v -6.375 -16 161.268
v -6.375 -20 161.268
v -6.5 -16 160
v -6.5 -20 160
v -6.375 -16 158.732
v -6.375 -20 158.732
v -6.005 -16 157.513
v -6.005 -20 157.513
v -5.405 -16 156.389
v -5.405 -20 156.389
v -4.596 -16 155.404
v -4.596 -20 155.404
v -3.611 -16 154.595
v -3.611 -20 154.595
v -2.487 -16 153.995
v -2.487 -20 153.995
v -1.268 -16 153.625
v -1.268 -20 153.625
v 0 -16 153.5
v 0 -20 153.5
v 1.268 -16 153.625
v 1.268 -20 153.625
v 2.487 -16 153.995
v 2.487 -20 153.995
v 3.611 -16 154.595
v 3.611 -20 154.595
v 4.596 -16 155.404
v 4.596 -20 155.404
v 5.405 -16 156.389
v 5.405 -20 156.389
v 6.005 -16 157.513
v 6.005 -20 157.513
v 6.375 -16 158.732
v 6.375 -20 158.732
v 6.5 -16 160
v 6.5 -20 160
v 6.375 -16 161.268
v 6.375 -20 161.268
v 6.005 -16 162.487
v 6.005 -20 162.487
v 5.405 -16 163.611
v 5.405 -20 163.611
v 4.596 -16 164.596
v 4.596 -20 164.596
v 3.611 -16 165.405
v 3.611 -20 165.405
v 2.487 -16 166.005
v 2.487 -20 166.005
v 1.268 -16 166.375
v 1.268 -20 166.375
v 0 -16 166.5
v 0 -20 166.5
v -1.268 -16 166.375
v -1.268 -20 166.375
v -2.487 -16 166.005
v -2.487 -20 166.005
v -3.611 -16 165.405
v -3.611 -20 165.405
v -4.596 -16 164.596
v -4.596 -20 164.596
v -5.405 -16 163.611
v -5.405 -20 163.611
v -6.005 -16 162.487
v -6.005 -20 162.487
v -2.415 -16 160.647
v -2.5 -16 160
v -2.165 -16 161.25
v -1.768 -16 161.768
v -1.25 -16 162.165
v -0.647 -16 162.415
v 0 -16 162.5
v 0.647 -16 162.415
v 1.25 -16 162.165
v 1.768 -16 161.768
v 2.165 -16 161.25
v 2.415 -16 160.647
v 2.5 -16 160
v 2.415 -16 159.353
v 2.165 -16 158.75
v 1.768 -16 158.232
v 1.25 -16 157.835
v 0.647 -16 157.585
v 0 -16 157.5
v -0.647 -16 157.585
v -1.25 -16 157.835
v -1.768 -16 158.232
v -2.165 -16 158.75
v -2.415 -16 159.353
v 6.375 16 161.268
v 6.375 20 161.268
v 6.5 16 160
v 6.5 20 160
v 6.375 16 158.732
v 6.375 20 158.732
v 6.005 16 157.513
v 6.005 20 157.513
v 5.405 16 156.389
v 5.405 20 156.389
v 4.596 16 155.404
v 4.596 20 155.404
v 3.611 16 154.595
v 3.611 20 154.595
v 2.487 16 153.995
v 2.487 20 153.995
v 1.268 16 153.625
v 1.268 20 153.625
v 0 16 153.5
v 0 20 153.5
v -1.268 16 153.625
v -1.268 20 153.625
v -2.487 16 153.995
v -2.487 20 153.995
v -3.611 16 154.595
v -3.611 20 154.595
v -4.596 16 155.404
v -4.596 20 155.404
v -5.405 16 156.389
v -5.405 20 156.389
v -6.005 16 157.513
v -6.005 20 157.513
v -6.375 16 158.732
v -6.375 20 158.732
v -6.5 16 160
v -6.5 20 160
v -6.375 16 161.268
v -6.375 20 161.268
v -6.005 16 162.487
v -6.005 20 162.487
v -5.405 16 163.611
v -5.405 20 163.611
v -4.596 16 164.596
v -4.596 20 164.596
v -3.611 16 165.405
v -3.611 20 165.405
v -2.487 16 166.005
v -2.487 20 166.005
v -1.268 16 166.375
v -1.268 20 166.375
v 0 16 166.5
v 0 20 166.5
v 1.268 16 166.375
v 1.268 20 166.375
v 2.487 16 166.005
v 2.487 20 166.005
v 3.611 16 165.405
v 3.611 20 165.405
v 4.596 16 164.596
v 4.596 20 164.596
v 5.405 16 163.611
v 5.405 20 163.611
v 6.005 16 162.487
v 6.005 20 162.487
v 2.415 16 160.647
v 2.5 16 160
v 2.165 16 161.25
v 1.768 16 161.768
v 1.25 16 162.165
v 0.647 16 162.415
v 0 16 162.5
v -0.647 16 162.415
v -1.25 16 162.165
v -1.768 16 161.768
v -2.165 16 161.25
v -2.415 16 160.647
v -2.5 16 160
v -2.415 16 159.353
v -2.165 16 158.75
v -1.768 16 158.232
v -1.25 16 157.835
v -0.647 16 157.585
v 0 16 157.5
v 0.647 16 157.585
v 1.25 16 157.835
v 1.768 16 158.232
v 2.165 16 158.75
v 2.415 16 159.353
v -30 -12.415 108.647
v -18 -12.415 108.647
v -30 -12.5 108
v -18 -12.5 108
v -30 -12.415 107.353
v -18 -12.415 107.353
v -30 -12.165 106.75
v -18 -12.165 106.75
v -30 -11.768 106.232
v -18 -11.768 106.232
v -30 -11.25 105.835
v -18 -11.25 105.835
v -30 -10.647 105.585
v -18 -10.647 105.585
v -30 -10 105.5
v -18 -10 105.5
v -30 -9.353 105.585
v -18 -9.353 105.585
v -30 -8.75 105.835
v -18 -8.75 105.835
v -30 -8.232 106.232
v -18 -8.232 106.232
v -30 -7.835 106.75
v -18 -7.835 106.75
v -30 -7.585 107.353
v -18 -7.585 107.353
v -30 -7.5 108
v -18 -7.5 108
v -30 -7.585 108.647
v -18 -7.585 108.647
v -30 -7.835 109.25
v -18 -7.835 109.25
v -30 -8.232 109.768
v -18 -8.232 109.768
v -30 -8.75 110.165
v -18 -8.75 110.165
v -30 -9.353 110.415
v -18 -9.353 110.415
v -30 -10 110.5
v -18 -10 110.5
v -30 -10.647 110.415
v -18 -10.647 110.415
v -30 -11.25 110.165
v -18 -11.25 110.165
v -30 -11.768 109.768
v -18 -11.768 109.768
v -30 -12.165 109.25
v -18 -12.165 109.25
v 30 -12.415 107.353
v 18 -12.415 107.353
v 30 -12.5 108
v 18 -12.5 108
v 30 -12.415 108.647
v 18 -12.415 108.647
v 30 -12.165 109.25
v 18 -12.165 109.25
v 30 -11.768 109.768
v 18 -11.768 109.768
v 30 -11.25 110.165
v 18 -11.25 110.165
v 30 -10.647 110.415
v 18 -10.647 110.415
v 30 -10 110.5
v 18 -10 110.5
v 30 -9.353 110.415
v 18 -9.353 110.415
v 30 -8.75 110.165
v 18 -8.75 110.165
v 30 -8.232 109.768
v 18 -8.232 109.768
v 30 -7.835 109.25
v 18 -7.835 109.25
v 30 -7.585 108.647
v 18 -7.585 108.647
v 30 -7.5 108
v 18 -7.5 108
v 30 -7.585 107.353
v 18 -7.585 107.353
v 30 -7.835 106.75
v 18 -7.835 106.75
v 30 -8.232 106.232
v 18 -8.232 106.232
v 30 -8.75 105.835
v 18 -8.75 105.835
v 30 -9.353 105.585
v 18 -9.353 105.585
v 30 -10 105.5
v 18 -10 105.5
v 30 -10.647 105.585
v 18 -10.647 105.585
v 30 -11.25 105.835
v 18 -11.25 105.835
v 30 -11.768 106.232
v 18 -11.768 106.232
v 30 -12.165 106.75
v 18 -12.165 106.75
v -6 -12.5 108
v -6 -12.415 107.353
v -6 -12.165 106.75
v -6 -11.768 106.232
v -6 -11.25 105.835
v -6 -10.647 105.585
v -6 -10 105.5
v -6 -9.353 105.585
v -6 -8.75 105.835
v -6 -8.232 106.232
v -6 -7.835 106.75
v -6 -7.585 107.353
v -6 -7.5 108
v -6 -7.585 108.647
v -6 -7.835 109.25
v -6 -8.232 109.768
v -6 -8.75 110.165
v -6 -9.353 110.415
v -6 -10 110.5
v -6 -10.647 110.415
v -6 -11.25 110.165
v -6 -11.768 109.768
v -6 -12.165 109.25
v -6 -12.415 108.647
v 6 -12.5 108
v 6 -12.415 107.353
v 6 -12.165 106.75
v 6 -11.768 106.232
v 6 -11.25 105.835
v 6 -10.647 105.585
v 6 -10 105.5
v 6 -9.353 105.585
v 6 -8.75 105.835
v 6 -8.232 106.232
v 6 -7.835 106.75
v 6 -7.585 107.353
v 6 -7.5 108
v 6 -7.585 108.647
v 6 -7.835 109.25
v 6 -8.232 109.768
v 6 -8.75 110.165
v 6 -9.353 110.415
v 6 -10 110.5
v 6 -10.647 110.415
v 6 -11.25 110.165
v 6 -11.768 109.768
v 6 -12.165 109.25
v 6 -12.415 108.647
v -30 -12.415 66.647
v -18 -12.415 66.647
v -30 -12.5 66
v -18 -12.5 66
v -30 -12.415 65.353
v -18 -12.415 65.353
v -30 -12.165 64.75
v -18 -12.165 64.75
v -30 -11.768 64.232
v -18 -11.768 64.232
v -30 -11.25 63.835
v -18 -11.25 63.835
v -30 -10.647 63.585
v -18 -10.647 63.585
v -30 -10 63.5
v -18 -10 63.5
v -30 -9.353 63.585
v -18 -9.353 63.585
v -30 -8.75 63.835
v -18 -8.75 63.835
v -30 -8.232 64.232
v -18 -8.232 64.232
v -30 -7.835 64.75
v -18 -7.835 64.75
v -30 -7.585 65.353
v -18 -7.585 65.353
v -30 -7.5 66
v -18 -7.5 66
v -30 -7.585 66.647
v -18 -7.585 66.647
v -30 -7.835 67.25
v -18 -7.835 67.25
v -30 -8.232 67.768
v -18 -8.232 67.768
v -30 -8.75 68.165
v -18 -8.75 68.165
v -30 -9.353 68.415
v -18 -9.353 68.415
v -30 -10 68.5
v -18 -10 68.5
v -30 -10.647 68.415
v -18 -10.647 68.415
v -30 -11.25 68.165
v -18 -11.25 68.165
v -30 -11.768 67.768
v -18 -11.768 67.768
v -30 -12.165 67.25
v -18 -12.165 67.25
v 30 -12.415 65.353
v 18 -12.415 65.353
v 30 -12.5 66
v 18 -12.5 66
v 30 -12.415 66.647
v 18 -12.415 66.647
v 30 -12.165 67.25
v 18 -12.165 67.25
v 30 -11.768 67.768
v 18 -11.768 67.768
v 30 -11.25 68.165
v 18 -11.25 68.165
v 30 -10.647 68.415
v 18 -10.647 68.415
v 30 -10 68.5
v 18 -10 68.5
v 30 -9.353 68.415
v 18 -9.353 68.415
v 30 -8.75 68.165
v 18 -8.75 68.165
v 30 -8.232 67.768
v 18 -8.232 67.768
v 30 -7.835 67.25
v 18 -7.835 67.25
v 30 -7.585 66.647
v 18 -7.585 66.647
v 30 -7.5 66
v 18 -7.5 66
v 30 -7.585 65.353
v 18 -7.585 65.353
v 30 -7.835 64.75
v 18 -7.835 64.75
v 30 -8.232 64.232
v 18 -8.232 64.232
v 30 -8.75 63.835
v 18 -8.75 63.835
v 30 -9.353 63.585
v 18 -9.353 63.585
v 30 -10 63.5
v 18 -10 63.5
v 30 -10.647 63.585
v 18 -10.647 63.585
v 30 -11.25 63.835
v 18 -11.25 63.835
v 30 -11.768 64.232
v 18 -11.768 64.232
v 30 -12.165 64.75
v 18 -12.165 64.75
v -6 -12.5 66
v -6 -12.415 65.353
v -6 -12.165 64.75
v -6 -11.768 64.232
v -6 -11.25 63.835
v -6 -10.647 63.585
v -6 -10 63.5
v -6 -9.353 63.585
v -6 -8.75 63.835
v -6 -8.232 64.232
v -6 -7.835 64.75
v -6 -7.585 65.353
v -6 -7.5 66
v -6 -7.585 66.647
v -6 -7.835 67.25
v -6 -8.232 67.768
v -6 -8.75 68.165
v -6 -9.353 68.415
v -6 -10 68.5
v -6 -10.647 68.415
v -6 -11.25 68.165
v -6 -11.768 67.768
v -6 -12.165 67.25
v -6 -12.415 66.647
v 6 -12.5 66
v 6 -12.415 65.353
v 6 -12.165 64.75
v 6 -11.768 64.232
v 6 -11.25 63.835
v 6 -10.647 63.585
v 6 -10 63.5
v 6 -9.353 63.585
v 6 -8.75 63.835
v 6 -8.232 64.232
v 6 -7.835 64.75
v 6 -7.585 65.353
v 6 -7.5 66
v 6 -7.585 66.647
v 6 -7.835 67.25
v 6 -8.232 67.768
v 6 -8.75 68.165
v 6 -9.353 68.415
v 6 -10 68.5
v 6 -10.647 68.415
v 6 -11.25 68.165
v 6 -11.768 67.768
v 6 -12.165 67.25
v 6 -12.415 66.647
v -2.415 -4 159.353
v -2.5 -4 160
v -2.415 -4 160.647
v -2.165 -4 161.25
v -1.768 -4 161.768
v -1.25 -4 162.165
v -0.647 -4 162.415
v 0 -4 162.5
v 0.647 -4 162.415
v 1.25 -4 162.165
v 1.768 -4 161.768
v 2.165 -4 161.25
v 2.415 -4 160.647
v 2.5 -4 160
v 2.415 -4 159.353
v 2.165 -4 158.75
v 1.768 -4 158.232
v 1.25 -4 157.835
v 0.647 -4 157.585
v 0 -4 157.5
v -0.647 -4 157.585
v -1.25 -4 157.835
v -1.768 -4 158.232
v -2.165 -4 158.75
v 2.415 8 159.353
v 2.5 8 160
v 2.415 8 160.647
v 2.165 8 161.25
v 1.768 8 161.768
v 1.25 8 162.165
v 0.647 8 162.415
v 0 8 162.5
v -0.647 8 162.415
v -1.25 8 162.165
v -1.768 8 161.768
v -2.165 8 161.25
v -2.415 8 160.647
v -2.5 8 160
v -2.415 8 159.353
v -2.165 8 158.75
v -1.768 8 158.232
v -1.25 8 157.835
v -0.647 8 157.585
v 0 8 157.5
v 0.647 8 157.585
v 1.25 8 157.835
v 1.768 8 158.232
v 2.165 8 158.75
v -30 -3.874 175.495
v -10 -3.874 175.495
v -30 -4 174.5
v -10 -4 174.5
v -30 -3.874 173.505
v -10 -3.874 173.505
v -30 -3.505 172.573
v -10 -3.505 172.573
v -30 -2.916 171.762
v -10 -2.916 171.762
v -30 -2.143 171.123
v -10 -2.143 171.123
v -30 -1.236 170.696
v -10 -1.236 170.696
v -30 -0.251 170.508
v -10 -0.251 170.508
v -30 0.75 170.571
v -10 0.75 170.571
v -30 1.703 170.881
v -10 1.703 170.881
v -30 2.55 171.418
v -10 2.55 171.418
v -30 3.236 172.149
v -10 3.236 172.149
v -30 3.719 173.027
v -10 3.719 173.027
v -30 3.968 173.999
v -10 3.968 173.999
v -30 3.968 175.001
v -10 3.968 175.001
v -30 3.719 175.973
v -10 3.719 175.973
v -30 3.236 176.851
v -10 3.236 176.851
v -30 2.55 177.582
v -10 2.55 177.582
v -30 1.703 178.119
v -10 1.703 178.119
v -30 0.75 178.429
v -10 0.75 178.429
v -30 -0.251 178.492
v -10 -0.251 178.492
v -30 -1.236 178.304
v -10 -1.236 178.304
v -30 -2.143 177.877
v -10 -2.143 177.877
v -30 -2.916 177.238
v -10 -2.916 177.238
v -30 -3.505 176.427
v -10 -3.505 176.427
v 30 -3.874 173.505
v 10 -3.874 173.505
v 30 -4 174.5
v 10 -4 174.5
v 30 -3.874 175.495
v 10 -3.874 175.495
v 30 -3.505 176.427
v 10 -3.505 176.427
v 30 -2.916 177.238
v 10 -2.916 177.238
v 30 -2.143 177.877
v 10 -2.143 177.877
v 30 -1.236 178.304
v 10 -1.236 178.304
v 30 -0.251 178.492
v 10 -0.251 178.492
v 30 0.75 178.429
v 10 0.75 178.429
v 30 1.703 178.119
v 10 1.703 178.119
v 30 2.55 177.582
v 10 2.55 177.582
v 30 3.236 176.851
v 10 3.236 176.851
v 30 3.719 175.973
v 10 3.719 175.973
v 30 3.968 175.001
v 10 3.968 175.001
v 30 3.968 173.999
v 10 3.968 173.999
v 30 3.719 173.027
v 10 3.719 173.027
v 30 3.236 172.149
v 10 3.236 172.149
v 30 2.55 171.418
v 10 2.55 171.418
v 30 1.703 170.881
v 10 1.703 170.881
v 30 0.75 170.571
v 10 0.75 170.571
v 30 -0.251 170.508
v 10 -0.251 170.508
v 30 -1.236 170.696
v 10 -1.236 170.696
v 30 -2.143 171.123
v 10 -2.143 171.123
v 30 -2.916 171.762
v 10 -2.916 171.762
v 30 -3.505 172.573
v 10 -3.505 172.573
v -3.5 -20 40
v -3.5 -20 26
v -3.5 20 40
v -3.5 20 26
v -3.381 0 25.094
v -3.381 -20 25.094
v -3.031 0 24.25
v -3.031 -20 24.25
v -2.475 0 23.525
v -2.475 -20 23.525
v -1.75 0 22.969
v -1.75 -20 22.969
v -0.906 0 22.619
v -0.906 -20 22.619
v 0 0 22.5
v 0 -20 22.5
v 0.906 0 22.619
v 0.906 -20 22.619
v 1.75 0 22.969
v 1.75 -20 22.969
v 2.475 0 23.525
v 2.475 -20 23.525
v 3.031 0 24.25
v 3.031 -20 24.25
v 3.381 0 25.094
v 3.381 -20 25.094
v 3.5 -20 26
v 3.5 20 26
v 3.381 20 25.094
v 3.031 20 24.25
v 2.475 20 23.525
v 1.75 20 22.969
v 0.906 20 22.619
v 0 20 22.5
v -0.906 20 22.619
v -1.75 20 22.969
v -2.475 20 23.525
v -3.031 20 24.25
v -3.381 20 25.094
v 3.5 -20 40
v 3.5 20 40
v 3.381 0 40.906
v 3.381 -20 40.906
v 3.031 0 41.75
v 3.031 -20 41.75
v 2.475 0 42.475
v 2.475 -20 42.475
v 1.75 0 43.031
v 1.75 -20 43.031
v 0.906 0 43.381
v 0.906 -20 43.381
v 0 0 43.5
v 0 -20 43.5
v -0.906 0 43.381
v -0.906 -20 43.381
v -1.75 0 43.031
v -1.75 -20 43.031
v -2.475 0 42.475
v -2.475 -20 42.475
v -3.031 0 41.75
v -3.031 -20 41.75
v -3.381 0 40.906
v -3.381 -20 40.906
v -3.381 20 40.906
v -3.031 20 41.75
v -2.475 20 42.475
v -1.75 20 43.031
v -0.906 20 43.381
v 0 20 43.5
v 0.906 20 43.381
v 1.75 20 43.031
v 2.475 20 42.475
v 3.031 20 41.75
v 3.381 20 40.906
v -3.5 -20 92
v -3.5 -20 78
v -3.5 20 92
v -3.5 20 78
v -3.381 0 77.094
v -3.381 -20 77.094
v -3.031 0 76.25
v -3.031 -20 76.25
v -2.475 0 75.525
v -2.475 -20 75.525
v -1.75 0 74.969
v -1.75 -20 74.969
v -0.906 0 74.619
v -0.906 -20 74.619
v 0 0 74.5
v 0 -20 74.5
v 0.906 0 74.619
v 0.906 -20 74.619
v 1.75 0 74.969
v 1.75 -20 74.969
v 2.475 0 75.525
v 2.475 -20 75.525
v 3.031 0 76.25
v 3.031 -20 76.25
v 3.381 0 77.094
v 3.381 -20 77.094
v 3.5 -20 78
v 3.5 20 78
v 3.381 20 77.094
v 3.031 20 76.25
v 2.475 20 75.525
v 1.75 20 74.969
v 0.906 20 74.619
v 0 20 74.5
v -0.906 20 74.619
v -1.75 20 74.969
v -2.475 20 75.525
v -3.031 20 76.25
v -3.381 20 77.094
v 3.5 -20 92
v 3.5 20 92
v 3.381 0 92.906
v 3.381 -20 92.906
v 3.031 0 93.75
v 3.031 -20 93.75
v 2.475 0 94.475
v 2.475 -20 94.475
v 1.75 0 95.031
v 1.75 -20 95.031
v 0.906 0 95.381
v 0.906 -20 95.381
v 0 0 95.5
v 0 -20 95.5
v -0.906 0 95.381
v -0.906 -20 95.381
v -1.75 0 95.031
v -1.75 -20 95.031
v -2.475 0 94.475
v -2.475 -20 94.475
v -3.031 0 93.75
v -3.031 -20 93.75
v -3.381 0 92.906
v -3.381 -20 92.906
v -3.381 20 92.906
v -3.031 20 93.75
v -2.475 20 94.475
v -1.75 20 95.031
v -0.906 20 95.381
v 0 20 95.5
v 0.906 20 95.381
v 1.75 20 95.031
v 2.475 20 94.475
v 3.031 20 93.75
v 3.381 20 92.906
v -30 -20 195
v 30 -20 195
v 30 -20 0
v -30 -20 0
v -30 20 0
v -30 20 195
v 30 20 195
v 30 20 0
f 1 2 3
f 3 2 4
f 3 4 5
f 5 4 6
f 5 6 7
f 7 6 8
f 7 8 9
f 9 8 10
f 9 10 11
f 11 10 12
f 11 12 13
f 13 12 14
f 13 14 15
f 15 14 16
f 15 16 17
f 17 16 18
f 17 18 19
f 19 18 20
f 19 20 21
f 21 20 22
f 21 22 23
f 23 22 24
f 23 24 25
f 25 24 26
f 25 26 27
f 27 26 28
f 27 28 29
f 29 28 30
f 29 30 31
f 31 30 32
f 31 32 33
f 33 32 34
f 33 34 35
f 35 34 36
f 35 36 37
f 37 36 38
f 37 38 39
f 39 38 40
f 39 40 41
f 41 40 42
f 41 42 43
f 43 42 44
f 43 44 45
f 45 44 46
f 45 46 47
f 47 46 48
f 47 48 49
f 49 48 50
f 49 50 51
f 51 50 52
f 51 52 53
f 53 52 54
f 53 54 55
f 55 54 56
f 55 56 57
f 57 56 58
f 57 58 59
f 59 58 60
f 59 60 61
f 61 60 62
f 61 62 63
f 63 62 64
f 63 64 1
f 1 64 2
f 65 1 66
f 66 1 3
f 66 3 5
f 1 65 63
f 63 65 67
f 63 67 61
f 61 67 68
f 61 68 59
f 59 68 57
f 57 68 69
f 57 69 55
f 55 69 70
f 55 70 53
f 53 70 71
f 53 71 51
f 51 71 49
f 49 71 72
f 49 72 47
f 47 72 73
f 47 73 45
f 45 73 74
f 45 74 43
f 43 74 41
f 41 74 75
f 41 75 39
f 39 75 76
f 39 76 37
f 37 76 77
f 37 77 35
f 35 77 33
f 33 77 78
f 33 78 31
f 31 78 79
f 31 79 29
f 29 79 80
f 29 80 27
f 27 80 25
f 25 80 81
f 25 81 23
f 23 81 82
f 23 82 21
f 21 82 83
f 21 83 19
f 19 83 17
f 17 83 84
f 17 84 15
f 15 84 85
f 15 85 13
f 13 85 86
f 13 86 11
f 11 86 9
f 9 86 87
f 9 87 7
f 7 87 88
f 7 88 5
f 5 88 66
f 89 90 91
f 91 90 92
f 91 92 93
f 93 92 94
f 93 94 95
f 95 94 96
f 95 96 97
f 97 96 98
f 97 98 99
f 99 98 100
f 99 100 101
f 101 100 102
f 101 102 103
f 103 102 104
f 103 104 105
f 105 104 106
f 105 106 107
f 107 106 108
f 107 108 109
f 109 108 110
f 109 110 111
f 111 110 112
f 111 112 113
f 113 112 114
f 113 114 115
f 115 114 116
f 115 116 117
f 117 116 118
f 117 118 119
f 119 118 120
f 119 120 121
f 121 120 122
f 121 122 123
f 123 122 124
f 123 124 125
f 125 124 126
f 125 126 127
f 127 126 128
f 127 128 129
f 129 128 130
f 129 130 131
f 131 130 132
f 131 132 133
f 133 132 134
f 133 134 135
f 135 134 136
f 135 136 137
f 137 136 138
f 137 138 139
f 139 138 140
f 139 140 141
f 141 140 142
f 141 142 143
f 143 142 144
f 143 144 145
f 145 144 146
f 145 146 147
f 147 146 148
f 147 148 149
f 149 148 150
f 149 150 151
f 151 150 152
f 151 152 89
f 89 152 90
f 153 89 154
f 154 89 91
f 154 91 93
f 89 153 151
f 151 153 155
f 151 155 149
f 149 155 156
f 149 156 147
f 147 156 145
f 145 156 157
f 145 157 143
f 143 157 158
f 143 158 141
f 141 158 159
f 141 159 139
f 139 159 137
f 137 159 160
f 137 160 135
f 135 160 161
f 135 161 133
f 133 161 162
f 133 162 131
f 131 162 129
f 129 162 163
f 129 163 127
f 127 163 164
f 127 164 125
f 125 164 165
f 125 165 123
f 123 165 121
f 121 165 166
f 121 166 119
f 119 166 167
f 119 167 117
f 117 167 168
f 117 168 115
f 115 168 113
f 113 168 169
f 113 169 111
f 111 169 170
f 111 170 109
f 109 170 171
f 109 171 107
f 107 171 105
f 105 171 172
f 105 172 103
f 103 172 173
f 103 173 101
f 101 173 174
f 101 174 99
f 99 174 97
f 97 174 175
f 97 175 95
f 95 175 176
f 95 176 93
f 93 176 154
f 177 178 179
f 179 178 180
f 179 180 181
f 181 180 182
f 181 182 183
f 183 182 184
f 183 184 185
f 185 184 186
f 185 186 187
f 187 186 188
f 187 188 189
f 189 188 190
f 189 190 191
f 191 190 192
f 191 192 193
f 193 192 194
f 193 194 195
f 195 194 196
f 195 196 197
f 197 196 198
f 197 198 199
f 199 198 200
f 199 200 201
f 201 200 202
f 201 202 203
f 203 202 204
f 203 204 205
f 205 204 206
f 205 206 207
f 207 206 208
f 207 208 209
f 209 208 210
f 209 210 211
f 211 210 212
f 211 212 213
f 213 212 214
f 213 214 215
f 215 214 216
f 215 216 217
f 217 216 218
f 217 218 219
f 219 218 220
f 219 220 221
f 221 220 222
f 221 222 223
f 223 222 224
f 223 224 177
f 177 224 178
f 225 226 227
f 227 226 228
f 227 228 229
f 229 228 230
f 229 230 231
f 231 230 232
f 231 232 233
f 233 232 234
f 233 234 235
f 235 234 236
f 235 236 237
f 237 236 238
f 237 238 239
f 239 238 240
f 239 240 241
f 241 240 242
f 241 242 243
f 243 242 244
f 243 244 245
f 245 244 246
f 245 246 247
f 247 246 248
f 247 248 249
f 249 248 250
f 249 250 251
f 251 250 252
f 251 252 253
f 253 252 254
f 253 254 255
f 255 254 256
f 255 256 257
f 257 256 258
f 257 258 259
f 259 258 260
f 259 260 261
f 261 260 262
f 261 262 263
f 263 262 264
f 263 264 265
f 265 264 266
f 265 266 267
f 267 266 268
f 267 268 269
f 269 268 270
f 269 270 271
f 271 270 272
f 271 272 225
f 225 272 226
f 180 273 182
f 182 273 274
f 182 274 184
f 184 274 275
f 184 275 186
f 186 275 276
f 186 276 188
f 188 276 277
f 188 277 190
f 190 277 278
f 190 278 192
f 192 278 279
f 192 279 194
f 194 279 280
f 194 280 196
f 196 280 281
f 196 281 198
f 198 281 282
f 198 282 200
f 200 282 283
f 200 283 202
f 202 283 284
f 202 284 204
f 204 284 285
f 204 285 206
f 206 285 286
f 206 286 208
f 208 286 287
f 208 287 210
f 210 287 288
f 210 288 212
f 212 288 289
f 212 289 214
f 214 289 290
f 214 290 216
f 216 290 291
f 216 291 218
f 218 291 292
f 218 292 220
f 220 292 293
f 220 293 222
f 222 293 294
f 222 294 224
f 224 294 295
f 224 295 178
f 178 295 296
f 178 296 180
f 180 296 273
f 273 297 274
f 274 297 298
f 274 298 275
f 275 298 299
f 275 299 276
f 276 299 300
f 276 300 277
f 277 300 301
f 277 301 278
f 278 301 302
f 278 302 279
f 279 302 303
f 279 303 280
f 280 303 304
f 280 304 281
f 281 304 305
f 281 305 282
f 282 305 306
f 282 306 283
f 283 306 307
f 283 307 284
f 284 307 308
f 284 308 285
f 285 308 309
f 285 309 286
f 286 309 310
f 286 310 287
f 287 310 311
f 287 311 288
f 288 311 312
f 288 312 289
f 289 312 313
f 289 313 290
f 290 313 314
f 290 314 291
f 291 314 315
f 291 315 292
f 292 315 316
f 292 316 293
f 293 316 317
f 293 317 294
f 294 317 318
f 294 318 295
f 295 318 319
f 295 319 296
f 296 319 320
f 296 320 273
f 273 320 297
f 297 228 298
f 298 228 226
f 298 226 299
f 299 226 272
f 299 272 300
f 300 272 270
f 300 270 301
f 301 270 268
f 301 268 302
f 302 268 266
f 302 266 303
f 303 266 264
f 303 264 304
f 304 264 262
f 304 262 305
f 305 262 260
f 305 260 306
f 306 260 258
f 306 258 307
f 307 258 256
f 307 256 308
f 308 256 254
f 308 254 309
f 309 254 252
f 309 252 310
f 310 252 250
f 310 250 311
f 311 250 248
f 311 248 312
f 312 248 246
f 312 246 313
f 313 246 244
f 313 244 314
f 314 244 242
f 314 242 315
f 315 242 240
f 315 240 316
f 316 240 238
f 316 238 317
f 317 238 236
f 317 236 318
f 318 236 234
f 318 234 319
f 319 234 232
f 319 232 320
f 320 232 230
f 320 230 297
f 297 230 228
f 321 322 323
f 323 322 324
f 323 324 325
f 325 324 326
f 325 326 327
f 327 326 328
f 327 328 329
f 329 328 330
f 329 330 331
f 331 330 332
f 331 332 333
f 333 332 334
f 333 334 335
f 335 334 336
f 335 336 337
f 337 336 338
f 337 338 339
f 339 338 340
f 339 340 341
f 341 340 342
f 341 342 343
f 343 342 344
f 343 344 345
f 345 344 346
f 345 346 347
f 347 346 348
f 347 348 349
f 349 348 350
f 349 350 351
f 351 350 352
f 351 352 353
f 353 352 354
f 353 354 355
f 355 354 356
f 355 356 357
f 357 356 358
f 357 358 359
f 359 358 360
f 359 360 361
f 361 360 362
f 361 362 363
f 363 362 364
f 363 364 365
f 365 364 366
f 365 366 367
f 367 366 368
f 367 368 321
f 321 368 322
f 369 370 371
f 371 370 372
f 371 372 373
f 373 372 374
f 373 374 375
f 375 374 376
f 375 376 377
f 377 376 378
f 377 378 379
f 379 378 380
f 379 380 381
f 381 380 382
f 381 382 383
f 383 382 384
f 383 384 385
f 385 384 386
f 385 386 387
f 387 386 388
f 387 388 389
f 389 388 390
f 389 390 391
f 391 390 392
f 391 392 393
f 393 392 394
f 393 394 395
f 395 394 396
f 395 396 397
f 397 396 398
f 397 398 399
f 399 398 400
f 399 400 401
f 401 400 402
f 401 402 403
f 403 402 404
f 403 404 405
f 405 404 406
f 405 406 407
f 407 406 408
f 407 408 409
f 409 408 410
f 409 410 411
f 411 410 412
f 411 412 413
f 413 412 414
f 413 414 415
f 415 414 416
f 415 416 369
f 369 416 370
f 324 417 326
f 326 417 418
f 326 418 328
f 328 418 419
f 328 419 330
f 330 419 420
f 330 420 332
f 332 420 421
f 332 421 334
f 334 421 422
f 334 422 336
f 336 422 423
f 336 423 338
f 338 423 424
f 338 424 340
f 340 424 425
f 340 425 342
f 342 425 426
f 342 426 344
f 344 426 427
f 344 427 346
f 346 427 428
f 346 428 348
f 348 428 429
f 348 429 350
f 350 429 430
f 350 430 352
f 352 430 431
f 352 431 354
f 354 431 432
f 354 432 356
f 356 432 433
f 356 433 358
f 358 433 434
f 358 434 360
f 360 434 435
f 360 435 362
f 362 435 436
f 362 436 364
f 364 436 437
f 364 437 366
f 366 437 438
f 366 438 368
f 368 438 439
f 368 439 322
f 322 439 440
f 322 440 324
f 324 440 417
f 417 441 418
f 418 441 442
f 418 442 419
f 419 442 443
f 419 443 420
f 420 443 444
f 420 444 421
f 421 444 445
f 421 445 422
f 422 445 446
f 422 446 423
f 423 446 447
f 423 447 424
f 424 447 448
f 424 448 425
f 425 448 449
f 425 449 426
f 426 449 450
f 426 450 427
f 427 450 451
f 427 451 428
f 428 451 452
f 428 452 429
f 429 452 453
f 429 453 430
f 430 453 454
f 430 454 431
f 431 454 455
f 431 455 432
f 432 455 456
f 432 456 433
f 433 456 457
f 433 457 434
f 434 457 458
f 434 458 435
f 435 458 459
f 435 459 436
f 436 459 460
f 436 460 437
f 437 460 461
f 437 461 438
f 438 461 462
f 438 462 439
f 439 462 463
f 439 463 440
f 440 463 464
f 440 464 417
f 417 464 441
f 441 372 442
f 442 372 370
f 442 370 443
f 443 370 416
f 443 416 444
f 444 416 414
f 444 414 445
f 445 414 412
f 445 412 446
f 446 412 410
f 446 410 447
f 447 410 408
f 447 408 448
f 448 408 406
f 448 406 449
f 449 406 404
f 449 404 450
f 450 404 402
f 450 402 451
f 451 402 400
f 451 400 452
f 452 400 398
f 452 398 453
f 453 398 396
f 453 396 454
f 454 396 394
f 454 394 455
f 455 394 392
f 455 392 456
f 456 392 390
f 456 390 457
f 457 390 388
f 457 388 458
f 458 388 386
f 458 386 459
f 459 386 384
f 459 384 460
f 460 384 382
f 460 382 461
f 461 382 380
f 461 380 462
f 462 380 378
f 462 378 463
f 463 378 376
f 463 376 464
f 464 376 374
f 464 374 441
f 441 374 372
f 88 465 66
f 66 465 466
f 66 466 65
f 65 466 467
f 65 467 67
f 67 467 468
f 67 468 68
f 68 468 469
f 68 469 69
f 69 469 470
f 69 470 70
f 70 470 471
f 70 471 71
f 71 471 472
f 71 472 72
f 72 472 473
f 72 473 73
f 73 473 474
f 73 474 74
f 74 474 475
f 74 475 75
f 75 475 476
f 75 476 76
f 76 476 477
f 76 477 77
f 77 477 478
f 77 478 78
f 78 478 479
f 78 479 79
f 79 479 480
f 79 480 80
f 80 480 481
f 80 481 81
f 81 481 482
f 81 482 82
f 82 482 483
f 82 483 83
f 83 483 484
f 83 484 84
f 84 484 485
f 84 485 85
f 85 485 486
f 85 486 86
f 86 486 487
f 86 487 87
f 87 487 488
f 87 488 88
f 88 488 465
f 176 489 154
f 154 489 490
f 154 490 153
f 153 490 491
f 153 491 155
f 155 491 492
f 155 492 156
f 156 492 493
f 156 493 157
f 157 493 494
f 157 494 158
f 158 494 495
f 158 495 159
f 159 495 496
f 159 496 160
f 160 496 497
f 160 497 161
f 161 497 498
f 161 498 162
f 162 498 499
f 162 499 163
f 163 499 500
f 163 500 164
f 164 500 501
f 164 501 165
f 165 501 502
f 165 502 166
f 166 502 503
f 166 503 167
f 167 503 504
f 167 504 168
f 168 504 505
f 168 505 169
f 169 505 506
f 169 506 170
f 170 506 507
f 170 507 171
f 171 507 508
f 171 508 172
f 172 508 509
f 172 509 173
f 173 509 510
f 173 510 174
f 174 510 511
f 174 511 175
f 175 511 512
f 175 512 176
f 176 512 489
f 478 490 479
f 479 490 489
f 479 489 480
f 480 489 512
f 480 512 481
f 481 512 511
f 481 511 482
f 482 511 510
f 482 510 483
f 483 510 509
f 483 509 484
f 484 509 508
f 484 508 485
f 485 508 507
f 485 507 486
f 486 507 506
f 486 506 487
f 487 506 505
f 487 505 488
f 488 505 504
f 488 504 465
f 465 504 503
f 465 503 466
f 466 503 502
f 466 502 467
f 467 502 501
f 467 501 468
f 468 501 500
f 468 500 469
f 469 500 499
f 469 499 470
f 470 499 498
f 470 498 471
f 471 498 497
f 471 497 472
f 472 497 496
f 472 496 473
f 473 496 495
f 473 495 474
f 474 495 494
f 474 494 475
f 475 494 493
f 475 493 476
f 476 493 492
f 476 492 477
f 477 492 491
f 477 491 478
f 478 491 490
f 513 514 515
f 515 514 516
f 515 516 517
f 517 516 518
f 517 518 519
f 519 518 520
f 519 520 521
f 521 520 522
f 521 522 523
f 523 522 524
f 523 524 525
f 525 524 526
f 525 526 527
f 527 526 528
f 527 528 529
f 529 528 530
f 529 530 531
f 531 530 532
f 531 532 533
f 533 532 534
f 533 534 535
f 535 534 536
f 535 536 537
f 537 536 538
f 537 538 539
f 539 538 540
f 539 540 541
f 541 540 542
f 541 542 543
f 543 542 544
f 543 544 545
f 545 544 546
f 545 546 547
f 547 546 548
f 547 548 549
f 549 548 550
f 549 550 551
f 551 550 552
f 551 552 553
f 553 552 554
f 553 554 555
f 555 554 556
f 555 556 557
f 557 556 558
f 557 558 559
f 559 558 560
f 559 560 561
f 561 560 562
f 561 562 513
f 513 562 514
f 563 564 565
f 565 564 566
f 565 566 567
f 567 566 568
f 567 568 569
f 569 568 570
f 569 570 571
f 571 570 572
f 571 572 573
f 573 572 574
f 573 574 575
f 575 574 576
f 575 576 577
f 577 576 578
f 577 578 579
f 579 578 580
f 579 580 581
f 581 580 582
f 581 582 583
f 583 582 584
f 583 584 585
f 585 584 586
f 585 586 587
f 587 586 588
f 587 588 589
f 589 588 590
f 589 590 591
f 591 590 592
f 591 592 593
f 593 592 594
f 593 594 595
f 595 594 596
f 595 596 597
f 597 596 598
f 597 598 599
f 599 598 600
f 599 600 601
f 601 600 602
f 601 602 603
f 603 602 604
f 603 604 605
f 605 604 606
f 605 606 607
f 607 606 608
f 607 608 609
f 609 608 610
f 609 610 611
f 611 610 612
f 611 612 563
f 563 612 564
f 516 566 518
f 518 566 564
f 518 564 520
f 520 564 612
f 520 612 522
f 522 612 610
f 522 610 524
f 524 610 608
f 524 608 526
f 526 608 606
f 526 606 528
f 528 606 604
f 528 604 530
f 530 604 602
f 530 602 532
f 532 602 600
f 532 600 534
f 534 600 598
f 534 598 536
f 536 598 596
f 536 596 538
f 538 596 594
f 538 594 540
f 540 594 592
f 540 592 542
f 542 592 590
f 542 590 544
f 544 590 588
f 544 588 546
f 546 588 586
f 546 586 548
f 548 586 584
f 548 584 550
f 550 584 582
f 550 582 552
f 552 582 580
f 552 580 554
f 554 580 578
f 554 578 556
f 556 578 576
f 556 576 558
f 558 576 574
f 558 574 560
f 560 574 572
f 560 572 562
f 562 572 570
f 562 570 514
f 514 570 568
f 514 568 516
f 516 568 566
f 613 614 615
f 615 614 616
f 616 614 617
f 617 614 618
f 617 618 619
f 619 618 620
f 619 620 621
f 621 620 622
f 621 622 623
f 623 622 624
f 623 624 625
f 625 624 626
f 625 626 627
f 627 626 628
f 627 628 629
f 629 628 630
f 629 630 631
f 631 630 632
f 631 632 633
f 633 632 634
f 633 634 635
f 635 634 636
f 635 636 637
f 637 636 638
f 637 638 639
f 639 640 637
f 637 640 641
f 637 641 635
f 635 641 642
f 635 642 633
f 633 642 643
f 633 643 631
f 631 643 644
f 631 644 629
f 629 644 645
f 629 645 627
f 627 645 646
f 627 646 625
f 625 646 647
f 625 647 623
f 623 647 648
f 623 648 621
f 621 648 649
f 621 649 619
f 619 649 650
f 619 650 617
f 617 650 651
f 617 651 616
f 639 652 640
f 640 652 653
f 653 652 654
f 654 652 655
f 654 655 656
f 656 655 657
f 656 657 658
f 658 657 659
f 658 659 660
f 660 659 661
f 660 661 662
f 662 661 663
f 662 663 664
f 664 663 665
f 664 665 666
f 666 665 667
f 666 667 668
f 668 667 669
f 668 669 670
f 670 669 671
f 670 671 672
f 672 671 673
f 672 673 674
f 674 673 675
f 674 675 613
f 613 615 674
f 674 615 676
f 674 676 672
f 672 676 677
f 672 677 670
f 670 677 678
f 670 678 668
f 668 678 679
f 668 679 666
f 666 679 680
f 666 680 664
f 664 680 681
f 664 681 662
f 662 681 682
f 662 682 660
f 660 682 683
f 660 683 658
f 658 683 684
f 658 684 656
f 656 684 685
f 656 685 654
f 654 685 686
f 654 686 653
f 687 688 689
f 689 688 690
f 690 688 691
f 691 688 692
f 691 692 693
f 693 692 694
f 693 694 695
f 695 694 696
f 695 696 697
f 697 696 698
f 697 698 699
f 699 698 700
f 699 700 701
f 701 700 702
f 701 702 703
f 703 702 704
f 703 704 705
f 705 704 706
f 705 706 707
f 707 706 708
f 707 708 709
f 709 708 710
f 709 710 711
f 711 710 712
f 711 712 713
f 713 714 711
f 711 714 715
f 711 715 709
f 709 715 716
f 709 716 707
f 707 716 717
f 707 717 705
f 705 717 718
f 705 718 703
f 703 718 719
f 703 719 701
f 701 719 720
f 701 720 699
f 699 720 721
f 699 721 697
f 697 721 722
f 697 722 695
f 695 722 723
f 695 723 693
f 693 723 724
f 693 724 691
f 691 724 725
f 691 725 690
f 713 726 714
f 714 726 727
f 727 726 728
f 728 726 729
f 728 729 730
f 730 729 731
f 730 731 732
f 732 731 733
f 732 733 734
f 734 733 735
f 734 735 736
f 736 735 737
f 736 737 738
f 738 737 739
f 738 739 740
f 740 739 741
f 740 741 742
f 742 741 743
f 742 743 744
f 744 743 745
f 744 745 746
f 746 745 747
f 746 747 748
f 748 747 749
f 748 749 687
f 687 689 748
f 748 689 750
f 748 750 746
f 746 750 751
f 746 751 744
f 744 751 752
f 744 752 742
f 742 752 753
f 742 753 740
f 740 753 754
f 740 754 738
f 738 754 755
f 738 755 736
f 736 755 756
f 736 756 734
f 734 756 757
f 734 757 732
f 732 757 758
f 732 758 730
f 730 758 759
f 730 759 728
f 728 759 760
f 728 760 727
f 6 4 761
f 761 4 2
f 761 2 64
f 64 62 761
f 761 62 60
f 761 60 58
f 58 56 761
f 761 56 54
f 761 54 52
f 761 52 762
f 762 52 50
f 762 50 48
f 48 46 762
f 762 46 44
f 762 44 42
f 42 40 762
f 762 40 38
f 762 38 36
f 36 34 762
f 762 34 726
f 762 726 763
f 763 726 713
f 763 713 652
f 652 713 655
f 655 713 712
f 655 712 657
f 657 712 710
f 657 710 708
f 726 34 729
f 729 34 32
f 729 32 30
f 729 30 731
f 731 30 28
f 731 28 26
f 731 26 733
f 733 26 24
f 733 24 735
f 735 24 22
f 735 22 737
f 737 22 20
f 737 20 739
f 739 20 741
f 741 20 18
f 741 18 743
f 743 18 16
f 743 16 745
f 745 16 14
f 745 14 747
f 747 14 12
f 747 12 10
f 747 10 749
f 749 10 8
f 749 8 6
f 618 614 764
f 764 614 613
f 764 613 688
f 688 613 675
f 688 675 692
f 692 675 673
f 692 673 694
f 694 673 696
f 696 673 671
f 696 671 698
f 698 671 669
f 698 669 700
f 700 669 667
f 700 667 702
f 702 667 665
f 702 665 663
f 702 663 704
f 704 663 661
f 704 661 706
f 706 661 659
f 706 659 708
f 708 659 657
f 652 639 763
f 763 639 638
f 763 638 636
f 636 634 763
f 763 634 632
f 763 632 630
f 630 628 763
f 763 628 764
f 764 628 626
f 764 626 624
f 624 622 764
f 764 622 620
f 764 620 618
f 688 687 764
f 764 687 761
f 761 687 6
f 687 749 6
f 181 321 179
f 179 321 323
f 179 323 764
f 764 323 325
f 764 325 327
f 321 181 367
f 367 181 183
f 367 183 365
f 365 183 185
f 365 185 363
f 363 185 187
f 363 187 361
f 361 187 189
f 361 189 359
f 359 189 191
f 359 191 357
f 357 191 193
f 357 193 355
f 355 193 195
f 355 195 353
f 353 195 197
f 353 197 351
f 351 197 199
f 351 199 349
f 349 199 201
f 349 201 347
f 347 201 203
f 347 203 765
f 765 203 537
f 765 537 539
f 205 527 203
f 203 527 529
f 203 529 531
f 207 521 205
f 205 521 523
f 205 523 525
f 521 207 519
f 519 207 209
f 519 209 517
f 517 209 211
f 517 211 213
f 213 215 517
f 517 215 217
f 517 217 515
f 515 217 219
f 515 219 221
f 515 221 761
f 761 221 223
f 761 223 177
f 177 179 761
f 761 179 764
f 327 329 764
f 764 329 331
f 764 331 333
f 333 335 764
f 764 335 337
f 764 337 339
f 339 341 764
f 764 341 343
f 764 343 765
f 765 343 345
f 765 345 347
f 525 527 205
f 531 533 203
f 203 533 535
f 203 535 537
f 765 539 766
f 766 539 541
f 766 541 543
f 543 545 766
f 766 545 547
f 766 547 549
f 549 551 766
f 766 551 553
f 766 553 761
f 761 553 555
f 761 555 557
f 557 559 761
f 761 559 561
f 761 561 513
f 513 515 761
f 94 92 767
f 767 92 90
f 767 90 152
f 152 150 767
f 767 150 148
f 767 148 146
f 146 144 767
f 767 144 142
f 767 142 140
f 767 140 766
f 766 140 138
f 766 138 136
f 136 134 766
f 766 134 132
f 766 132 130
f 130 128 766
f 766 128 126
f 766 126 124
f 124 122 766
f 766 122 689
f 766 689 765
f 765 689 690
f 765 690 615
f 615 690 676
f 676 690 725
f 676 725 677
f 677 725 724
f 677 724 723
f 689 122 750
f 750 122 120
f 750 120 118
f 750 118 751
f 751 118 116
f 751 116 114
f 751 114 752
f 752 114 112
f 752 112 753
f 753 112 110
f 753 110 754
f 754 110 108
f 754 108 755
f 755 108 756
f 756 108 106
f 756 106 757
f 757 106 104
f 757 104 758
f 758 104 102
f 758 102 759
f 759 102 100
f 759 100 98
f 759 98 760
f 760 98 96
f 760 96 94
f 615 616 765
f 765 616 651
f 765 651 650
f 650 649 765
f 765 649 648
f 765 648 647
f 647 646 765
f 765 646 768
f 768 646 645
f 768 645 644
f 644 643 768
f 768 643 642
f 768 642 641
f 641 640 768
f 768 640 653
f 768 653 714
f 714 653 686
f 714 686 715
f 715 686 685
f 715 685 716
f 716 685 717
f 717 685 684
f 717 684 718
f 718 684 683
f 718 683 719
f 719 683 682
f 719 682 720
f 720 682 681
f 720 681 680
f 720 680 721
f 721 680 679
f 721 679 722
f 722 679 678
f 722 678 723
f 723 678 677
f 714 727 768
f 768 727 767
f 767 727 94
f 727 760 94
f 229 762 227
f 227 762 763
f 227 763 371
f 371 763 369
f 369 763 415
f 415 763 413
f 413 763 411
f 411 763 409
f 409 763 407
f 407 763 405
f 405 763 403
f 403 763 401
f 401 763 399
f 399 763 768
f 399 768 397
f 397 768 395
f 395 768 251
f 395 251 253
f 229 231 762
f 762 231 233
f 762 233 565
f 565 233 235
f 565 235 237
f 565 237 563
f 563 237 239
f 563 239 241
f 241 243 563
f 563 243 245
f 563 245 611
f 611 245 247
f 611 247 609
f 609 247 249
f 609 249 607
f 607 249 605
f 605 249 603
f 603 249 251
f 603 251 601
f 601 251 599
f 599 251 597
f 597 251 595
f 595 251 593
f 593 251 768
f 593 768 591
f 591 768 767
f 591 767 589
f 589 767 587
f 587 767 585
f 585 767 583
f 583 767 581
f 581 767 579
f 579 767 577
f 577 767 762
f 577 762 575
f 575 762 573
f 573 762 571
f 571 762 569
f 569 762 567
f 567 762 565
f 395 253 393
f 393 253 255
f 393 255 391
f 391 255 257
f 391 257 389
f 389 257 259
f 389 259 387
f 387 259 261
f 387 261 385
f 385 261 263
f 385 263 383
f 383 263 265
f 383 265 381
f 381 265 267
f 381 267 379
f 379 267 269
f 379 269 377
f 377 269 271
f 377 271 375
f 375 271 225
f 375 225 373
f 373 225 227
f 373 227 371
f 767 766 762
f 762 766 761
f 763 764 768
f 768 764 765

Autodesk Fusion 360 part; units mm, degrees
sketch "Skizze1" plane through (0, 0, 0) normal (0, 0, 1) x (1, 0, 0)
  line L0 (30, 20) -> (-30, 20)
  line L1 (-30, 20) -> (-30, -20)
  line L2 (-30, -20) -> (30, -20)
  line L3 (30, -20) -> (30, 20)
  line L4 (30, 20) -> (-30, -20) construction
  line L5 (-30, 20) -> (30, -20) construction
  dimension "d2" = 60
  dimension "d3" = 40
extrude "Extrusion1" add sketch "Skizze1" along normal blind 195
sketch "Skizze3" plane through (0, -20, 0) normal (0, -1, 0) x (1, 0, 0)
  line L0 (-30, 0) -> (30, 0)
  line L1 (30, 0) -> (30, 195)
  line L2 (30, 195) -> (-30, 195)
  line L3 (-30, 195) -> (-30, 0)
  line L4 (-3.5, 40) -> (-3.5, 26)
  arc A0 (-3.5, 26) -> (3.5, 26) centre (0, 26) ccw
  line L5 (3.5, 26) -> (3.5, 40)
  arc A1 (3.5, 40) -> (-3.5, 40) centre (0, 40) ccw
  line L6 (0, 40) -> (0, 26) construction
  line L7 (-3.5, 92) -> (-3.5, 78)
  arc A2 (-3.5, 78) -> (3.5, 78) centre (0, 78) ccw
  line L8 (3.5, 78) -> (3.5, 92)
  arc A3 (3.5, 92) -> (-3.5, 92) centre (0, 92) ccw
  line L9 (0, 92) -> (0, 78) construction
  point P0 (0, 195)
  dimension "d6" = 14
  dimension "d7" = 7
  dimension "d8" = 14
  dimension "d9" = 7
extrude "Extrusion2" cut sketch "Skizze3" against normal blind 40 contours L4 A0 L5 A1 | L7 A2 L8 A3
sketch "Skizze4" plane through (30, 0, 0) normal (1, 0, 0) x (0, 1, 0)
  line L0 (-20, 0) -> (20, 0)
  line L1 (20, 0) -> (20, 195)
  line L2 (20, 195) -> (-20, 195)
  line L3 (-20, 195) -> (-20, 0)
  circle A0 centre (0, 174.5) radius 4
  dimension "d12" = 8
extrude "Extrusion3" cut sketch "Skizze4" against normal blind 60 contours A0
sketch "Skizze6" plane through (0, 0, 0) normal (0, 1, 0) x (1, 0, 0)
sketch "Skizze7" plane through (0, 20, 0) normal (0, 1, 0) x (-1, 0, 0)
  line L0 (3.5, 40) -> (3.5, 26)
  arc A0 (-3.5, 26) -> (3.5, 26) centre (0, 26) ccw
  line L1 (-3.5, 26) -> (-3.5, 40)
  arc A1 (3.5, 40) -> (-3.5, 40) centre (0, 40) ccw
  line L2 (3.5, 92) -> (3.5, 78)
  arc A2 (-3.5, 78) -> (3.5, 78) centre (0, 78) ccw
  line L3 (-3.5, 78) -> (-3.5, 92)
  arc A3 (3.5, 92) -> (-3.5, 92) centre (0, 92) ccw
  line L4 (-30, 0) -> (30, 0)
  line L5 (30, 0) -> (30, 195)
  line L6 (30, 195) -> (-30, 195)
  line L7 (-30, 195) -> (-30, 0)
  circle A4 centre (0, 160) radius 2.5
  dimension "d17" = 5
extrude "Extrusion4" cut sketch "Skizze7" against normal blind 40 contours A4
sketch "Skizze9" plane through (30, 0, 0) normal (1, 0, 0) x (0, 1, 0)
  circle A0 centre (0, 174.5) radius 4
  line L0 (-20, 0) -> (20, 0)
  line L1 (20, 0) -> (20, 195)
  line L2 (20, 195) -> (-20, 195)
  line L3 (-20, 195) -> (-20, 0)
  circle A1 centre (-10, 108) radius 2.5
  circle A2 centre (-10, 66) radius 2.5
  dimension "d23" = 5
  dimension "d24" = 5
extrude "Extrusion6" cut sketch "Skizze9" against normal blind 80 contours A1 | A2
sketch "Skizze10" plane through (0, 20, 0) normal (0, 1, 0) x (-1, 0, 0)
  circle A0 centre (0, 160) radius 2.5
  line L0 (3.5, 40) -> (3.5, 26)
  arc A1 (-3.5, 26) -> (3.5, 26) centre (0, 26) ccw
  line L1 (-3.5, 26) -> (-3.5, 40)
  arc A2 (3.5, 40) -> (-3.5, 40) centre (0, 40) ccw
  line L2 (3.5, 92) -> (3.5, 78)
  arc A3 (-3.5, 78) -> (3.5, 78) centre (0, 78) ccw
  line L3 (-3.5, 78) -> (-3.5, 92)
  arc A4 (3.5, 92) -> (-3.5, 92) centre (0, 92) ccw
  line L4 (-30, 0) -> (30, 0)
  line L5 (30, 0) -> (30, 195)
  line L6 (30, 195) -> (-30, 195)
  line L7 (-30, 195) -> (-30, 0)
  circle A5 centre (0, 160) radius 6.5
  dimension "d27" = 13
extrude "Extrusion7" cut sketch "Skizze10" against normal blind 4 contours A5
sketch "Skizze11" plane through (0, -20, 0) normal (0, -1, 0) x (1, 0, 0)
  circle A0 centre (0, 160) radius 2.5
  line L0 (-3.5, 26) -> (-3.5, 40)
  arc A1 (3.5, 40) -> (-3.5, 40) centre (0, 40) ccw
  line L1 (3.5, 40) -> (3.5, 26)
  arc A2 (-3.5, 26) -> (3.5, 26) centre (0, 26) ccw
  line L2 (-3.5, 78) -> (-3.5, 92)
  arc A3 (3.5, 92) -> (-3.5, 92) centre (0, 92) ccw
  line L3 (3.5, 92) -> (3.5, 78)
  arc A4 (-3.5, 78) -> (3.5, 78) centre (0, 78) ccw
  line L4 (-30, 0) -> (30, 0)
  line L5 (30, 0) -> (30, 195)
  line L6 (30, 195) -> (-30, 195)
  line L7 (-30, 195) -> (-30, 0)
  circle A5 centre (0, 160) radius 6.5
  dimension "d30" = 13
extrude "Extrusion8" cut sketch "Skizze11" against normal blind 4 contours A5
